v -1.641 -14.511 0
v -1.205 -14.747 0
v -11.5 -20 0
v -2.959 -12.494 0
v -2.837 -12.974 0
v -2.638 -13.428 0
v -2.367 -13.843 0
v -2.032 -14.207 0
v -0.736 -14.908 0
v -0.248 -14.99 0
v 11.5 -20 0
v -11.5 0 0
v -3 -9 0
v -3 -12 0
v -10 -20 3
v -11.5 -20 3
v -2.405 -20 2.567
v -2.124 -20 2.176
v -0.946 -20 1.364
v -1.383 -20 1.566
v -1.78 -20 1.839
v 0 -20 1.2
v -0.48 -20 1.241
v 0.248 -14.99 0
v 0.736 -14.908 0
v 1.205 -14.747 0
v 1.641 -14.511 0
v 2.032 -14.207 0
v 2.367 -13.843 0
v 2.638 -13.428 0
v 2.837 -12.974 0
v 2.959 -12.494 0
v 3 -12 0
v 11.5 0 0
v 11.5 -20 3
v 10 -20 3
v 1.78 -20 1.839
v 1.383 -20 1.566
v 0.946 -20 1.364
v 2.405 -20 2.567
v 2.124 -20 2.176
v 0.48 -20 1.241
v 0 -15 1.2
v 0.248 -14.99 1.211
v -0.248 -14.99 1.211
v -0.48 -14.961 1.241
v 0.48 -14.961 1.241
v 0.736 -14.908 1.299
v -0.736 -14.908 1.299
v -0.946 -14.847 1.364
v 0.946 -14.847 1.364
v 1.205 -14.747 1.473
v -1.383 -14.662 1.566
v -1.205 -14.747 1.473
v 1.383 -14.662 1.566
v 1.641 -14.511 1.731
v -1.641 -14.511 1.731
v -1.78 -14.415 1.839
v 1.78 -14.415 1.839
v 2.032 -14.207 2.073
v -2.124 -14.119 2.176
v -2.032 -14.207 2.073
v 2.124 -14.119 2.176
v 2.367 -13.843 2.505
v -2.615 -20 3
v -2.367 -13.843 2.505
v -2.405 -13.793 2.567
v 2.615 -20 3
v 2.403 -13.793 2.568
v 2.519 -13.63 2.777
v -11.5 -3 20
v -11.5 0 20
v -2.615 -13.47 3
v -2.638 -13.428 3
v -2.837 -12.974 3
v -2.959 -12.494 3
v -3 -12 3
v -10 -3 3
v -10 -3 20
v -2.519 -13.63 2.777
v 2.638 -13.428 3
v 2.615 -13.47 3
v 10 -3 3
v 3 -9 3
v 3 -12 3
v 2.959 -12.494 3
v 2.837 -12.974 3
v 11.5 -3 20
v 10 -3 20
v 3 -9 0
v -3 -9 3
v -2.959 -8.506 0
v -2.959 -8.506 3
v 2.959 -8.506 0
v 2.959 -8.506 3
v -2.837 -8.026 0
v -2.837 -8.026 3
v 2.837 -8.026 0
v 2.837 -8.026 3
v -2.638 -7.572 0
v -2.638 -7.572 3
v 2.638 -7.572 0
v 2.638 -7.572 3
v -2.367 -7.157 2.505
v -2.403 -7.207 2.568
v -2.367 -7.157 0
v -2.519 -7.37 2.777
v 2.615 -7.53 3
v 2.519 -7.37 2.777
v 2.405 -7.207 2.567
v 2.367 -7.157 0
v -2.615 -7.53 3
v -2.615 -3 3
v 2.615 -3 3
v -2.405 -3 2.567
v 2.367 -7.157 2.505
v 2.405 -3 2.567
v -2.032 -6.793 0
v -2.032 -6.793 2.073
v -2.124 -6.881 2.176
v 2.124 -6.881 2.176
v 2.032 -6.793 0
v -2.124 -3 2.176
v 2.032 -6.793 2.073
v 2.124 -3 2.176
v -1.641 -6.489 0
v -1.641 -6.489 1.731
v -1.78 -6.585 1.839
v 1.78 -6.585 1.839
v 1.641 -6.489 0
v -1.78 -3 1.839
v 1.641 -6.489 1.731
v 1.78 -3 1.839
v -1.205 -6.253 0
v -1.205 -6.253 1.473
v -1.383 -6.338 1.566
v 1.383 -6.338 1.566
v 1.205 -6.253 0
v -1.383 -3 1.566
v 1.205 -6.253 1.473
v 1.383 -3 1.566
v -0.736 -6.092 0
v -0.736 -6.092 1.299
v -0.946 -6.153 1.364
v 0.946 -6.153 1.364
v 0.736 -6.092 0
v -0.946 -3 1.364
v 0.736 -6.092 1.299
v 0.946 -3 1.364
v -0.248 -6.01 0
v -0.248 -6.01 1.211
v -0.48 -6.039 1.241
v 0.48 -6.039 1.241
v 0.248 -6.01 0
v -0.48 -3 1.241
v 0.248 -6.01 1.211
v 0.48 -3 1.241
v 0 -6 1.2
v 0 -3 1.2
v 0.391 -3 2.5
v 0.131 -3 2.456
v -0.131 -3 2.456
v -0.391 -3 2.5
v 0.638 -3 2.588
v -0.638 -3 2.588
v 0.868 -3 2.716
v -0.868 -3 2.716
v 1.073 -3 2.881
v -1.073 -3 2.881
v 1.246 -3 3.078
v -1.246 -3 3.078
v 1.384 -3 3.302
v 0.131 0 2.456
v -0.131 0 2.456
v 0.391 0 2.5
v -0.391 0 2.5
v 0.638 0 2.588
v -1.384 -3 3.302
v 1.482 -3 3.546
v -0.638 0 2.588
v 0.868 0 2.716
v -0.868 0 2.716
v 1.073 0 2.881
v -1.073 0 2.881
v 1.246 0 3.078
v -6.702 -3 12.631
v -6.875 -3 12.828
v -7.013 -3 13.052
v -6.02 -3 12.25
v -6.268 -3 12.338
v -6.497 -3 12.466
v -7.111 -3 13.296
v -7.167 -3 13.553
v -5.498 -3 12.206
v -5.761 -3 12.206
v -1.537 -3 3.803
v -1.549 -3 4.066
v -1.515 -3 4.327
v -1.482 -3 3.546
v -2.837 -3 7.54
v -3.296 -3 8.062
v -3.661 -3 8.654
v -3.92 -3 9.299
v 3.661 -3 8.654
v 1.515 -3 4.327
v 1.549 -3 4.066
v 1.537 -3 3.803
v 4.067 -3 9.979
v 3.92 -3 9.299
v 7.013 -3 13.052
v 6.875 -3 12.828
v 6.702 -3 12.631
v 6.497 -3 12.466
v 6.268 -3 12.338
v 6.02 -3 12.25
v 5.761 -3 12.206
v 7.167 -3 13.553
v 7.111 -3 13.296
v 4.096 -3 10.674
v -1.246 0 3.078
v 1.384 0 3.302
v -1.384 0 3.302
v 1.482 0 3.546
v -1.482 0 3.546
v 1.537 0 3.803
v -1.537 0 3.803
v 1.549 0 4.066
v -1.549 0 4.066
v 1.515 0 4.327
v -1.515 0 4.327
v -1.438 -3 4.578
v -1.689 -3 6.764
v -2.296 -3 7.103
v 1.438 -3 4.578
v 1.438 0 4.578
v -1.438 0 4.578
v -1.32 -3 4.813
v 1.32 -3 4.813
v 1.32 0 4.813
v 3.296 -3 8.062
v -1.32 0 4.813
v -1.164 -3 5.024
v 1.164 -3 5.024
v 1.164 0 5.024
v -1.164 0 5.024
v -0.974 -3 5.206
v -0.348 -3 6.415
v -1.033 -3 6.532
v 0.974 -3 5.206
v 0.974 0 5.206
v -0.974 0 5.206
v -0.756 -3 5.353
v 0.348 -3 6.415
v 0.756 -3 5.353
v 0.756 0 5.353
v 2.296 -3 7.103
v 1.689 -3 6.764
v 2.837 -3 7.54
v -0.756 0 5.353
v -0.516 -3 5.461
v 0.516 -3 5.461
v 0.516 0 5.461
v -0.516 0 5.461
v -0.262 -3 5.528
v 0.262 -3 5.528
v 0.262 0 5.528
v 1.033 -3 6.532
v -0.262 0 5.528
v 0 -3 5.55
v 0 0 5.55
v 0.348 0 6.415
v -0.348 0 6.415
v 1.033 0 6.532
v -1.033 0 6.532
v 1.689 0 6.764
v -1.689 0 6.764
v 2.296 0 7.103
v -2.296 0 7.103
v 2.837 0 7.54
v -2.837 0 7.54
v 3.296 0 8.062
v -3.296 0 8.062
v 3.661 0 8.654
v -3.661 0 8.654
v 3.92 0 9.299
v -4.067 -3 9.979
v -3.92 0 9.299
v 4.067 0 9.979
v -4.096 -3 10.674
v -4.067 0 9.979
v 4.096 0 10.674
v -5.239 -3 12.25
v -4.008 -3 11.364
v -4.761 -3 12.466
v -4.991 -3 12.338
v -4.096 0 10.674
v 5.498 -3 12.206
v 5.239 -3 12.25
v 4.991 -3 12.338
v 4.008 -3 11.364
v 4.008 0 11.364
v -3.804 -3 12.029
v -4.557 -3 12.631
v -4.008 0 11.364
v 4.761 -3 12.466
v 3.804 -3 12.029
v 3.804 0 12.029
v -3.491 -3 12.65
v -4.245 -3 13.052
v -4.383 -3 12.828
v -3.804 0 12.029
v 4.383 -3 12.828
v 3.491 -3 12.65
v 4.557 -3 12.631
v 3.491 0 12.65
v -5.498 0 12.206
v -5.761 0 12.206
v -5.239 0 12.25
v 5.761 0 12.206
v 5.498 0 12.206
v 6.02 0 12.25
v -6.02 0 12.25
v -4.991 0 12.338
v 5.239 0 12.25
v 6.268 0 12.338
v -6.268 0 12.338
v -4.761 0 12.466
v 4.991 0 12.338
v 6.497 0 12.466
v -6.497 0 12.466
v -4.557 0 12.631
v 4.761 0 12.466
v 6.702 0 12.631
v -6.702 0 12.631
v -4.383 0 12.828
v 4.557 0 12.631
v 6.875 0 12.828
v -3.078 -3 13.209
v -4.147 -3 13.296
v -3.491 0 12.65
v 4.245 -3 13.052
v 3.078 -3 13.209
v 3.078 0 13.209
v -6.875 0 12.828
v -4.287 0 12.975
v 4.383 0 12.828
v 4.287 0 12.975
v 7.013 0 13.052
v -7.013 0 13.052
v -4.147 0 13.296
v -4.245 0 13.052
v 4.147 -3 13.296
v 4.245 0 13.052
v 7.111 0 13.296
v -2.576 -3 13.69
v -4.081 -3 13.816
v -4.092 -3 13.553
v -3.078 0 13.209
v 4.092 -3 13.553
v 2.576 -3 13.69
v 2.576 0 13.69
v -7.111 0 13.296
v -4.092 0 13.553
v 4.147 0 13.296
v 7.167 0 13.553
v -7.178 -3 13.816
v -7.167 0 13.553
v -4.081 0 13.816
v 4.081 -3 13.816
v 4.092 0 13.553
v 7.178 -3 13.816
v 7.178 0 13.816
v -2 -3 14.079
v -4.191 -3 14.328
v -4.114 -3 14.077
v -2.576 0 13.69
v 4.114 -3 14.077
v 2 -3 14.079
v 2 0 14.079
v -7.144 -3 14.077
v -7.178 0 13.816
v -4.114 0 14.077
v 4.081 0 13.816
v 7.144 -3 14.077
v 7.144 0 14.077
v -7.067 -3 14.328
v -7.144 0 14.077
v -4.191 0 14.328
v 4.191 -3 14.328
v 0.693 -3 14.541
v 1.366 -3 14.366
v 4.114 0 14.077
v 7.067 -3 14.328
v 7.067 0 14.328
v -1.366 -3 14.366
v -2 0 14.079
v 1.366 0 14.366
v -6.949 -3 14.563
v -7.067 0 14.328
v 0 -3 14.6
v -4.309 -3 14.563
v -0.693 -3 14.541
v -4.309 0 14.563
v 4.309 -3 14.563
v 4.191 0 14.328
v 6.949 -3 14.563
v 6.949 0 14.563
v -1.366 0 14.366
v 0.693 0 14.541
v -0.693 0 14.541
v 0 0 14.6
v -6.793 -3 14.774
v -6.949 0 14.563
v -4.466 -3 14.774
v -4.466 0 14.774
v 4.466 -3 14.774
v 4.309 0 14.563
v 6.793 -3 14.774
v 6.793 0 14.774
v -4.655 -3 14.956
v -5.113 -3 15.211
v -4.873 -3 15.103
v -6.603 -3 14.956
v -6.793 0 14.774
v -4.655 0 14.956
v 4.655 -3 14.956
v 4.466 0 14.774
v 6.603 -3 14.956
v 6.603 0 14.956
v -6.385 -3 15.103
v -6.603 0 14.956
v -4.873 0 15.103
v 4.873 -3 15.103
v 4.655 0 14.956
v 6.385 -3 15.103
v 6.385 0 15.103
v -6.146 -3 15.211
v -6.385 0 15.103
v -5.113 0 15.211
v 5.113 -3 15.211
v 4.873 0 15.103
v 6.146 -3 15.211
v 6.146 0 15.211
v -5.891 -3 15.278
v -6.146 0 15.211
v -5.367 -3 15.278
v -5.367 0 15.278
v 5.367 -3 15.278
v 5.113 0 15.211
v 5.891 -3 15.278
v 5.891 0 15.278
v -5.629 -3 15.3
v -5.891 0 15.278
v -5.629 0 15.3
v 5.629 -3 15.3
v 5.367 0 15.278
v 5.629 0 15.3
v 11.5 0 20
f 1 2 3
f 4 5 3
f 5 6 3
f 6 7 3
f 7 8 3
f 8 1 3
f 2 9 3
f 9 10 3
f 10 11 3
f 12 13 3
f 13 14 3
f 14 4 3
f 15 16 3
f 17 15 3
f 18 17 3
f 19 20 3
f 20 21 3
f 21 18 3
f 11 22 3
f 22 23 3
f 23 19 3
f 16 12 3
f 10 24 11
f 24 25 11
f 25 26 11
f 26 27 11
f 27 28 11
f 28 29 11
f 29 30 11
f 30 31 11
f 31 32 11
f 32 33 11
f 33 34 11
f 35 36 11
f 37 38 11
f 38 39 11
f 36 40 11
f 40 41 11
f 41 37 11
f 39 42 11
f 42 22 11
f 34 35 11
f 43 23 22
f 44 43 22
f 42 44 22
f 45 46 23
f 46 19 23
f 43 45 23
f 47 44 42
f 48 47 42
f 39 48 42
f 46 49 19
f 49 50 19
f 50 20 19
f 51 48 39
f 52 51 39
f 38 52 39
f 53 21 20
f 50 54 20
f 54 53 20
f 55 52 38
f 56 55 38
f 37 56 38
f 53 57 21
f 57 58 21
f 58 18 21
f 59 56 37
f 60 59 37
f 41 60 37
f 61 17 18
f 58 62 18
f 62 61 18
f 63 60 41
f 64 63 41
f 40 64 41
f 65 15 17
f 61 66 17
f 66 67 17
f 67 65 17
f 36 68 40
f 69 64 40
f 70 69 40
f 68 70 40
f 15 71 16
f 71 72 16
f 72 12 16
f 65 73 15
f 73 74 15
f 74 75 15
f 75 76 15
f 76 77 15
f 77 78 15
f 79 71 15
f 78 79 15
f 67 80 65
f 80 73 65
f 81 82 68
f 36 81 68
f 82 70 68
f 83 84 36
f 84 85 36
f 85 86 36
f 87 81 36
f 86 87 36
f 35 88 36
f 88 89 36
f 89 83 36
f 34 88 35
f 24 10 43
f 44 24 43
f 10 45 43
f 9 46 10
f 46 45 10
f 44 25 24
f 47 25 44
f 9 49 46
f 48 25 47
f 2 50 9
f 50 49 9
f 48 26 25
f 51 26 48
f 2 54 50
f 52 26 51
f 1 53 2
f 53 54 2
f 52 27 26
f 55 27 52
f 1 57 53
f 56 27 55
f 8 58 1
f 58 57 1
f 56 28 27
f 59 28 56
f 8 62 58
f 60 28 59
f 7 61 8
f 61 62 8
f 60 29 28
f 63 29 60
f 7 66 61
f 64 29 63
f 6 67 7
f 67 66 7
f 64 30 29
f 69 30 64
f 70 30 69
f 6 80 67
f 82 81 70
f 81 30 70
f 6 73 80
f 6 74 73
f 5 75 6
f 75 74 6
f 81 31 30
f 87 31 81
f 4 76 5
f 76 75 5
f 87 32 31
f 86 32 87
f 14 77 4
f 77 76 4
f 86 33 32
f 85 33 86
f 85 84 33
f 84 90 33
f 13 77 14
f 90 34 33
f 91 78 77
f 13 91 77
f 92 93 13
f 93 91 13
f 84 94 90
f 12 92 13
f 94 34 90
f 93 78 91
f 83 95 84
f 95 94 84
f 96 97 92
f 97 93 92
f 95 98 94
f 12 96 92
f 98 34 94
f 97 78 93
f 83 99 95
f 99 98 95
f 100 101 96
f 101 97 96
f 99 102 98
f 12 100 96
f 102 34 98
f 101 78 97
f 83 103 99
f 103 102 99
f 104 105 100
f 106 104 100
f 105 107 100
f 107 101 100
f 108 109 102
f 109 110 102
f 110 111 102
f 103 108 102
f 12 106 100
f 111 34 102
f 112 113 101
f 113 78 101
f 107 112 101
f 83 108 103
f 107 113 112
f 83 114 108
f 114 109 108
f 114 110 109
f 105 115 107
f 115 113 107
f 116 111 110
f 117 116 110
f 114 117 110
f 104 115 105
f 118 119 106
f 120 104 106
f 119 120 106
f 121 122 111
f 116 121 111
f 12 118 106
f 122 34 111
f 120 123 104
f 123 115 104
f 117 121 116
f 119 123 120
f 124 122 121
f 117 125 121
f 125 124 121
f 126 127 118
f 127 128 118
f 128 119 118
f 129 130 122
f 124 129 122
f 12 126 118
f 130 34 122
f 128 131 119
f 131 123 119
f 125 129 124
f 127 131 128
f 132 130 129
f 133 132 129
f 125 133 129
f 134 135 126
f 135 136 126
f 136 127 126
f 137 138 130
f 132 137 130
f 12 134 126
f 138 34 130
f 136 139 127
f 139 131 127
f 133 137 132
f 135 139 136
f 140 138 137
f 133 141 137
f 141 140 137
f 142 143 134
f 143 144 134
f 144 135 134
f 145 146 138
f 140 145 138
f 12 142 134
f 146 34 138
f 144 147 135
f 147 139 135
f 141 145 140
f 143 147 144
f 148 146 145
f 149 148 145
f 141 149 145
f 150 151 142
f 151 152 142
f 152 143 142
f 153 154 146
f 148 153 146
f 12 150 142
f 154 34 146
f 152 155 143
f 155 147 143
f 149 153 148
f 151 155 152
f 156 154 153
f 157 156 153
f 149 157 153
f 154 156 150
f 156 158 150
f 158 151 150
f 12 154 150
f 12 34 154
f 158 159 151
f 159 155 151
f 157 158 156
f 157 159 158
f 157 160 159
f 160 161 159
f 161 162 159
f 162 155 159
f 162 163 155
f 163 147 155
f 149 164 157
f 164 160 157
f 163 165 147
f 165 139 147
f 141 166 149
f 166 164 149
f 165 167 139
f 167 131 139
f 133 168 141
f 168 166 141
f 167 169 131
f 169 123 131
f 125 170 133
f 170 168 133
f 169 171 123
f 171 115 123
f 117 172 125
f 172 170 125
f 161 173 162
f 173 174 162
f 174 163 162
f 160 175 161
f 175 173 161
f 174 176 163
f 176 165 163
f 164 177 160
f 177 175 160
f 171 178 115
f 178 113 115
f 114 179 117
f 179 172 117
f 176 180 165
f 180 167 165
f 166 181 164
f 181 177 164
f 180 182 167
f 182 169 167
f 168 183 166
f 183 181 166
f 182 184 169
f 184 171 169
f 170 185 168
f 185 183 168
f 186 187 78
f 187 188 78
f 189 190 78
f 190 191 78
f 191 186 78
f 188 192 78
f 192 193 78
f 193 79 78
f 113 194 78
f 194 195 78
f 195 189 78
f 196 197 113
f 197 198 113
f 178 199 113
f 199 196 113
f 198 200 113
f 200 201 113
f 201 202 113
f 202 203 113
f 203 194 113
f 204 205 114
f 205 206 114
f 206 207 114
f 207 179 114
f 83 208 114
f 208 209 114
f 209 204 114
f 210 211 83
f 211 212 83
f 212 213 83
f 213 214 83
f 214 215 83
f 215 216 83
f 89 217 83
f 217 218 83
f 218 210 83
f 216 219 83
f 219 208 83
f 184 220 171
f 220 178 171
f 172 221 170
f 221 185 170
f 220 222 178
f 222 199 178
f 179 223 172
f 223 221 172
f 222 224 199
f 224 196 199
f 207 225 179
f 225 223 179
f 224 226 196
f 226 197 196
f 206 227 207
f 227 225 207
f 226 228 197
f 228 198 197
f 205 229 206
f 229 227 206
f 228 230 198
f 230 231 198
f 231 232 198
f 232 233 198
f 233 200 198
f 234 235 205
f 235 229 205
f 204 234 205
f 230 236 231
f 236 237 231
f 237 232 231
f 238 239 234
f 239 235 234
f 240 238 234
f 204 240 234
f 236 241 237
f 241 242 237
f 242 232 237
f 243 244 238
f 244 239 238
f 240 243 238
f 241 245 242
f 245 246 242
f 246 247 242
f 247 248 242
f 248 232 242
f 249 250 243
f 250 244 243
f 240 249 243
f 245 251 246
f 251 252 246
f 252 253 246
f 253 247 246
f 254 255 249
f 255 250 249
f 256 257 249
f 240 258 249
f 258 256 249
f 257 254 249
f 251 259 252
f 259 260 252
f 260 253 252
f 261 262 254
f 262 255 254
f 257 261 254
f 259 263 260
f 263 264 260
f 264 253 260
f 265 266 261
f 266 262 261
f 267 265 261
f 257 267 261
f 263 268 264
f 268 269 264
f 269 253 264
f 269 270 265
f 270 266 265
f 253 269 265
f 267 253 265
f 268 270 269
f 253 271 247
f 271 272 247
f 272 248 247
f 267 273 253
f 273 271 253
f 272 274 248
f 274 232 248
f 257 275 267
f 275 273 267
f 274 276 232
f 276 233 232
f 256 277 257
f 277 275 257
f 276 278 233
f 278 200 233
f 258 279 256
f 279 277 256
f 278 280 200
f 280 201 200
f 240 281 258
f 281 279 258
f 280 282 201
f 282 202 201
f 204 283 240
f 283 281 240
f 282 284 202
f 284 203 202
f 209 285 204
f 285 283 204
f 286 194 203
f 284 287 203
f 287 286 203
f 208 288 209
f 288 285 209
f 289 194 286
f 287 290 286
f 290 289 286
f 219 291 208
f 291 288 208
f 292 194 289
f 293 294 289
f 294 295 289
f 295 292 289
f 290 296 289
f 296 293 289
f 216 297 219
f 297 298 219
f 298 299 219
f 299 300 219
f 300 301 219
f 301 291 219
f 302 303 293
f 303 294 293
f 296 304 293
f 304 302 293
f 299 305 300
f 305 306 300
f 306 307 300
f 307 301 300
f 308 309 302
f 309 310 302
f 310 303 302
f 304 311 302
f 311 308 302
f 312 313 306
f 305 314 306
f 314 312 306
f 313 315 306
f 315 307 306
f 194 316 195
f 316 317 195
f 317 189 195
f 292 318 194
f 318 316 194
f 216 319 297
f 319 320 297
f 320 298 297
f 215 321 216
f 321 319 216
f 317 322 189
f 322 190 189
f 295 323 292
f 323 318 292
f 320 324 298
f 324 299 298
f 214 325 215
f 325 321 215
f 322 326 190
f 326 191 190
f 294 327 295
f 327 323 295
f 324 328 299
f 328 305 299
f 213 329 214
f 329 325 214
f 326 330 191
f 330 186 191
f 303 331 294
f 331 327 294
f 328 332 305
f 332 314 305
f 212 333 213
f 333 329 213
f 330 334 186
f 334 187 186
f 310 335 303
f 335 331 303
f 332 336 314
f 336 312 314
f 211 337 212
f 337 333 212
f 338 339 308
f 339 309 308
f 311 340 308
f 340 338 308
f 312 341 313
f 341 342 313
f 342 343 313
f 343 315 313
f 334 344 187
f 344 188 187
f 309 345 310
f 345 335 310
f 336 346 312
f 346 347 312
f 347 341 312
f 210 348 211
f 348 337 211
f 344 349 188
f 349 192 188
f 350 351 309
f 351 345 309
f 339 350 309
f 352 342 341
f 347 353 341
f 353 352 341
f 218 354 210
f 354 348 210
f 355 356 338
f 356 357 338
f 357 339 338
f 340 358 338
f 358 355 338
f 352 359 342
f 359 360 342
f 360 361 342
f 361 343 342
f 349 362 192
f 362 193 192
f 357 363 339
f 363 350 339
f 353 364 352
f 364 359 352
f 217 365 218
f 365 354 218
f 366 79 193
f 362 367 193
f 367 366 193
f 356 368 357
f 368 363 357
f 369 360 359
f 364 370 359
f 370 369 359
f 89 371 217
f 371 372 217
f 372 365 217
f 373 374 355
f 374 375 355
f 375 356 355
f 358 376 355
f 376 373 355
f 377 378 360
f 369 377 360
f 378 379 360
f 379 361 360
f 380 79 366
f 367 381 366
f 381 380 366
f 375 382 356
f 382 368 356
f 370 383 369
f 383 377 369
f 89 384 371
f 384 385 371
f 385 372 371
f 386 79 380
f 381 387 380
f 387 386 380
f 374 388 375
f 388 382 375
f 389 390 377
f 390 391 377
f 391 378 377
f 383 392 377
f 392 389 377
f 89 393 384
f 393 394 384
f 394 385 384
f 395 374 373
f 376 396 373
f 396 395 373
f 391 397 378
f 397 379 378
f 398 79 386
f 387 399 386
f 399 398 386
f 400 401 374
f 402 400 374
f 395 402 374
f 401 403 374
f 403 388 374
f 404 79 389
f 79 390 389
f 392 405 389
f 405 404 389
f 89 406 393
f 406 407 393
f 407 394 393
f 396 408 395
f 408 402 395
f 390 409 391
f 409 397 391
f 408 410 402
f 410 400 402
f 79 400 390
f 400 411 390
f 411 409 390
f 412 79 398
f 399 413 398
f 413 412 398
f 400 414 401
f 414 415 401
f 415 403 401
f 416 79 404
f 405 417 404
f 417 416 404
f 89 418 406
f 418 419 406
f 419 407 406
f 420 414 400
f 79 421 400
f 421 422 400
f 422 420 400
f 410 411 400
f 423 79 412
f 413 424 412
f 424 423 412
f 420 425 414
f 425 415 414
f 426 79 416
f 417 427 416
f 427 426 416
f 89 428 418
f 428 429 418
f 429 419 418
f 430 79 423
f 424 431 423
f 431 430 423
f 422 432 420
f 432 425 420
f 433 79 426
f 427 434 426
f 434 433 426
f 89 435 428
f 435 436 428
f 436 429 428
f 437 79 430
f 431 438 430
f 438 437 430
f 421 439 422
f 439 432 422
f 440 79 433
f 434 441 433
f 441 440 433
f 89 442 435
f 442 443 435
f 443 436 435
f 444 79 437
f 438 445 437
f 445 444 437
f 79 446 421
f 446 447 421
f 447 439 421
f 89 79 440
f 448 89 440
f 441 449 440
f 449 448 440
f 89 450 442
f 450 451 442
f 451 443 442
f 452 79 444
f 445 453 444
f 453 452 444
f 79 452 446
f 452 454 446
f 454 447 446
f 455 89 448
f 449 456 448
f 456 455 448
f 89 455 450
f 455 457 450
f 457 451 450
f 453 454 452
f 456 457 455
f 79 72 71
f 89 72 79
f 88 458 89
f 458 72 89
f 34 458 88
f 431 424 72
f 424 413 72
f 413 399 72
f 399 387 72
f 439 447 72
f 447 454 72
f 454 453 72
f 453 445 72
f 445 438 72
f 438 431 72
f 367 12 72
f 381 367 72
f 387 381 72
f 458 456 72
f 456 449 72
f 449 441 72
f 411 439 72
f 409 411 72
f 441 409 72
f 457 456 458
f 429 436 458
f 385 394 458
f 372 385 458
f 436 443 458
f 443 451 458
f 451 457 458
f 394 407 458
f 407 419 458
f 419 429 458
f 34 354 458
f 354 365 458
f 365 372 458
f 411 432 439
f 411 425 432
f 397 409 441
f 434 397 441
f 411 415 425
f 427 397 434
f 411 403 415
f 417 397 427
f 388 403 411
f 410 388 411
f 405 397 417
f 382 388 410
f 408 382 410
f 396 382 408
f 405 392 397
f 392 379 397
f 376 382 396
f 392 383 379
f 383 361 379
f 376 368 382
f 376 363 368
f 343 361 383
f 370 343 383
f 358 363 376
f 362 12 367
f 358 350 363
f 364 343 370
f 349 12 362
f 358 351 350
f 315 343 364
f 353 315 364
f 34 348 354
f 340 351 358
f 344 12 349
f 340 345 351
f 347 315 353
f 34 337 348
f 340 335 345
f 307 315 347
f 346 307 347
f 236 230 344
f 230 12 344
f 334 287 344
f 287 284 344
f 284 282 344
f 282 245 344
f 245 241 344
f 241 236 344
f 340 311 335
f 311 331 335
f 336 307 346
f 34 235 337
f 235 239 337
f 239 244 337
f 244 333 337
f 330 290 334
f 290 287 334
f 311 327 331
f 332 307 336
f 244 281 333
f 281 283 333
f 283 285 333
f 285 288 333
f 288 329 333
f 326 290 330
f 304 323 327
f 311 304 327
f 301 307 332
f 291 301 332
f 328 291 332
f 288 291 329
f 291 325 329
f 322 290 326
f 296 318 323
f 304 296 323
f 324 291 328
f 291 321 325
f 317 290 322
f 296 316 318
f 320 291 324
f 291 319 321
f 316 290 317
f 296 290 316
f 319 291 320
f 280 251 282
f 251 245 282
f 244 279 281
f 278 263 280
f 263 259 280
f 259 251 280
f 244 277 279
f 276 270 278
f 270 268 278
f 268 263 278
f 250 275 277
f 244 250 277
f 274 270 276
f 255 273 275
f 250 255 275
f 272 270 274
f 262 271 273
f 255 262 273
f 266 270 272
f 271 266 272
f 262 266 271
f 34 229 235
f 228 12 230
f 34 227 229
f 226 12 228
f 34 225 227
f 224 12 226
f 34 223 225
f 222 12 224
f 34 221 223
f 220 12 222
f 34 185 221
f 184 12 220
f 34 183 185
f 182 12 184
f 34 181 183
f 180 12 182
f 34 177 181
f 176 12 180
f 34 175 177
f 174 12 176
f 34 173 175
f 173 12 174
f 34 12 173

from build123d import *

# Parameters (mm, degrees)
BOSS_EXTRUDE1_DEPTH   = 11.5
SKETCH2_W             = 17
SKETCH2_H             = 17
CUT_EXTRUDE1_DEPTH    = 10
CUT_EXTRUDE2_REACH    = 5
CORTE_EXTRUS_O1_REACH = 22
ESBO_O1_R             = 4.1
ESBO_O6_R             = 1.55
CORTE_EXTRUS_O5_DEPTH = 21
PADR_OCIRCULAR2_COUNT = 3
ESBO_O11_R            = 2.8
CORTE_EXTRUS_O8_DEPTH = 18.0000001


with BuildPart() as part:
    # Sketch1 → Boss-Extrude1 (new body, symmetric)
    with BuildSketch(Plane(origin=(0, 0, 0), x_dir=(0, 0, -1), z_dir=(1, 0, 0))):
        Polygon((0, 0), (-20, 0), (-20, -3), (-11.5, -11.5), (-3, -20), (0, -20), align=None)
    extrude(amount=BOSS_EXTRUDE1_DEPTH, both=True)

    # Sketch2 → Cut-Extrude1 (cut, symmetric)
    with BuildSketch(Plane(origin=(0, 0, 0), x_dir=(0, 0, -1), z_dir=(1, 0, 0))):
        with Locations((-11.5, -11.5)):
            Rectangle(SKETCH2_W, SKETCH2_H)
    extrude(amount=CUT_EXTRUDE1_DEPTH, both=True, mode=Mode.SUBTRACT)

    # Sketch3 → Cut-Extrude2 (cut, up to next)
    with BuildSketch(Plane.XY.offset(3), mode=Mode.PRIVATE) as cut_extrude2_sk1:
        with BuildLine():
            Line((-3, -9), (-3, -12))
            ThreePointArc((-3, -12), (0, -15), (3, -12))
            Line((3, -12), (3, -9))
            ThreePointArc((3, -9), (0, -6), (-3, -9))
        make_face()
    cut_extrude2_tool1 = extrude(cut_extrude2_sk1.sketch, amount=-CUT_EXTRUDE2_REACH, mode=Mode.PRIVATE) & part.part
    add(cut_extrude2_tool1.solids().sort_by_distance((0, -10.5, 3))[0], mode=Mode.SUBTRACT)

    # Esboço1 → Corte-extrusão1 (cut, up to next)
    with BuildSketch(Plane(origin=(0, 0, 0), x_dir=(1, 0, 0), z_dir=(0, 1, 0)), mode=Mode.PRIVATE) as corte_extrus_o1_sk1:
        with Locations((0, -10.5)):
            Circle(ESBO_O1_R)
    corte_extrus_o1_tool1 = extrude(corte_extrus_o1_sk1.sketch, amount=-CORTE_EXTRUS_O1_REACH, mode=Mode.PRIVATE) & part.part
    add(corte_extrus_o1_tool1.solids().sort_by_distance((0, 0, 10.5))[0], mode=Mode.SUBTRACT)

    # Esboço6 → Corte-extrusão5 (cut, through all)
    with BuildSketch(Plane(origin=(0, 0, 0), x_dir=(1, 0, 0), z_dir=(0, 1, 0))):
        with Locations((0, -4)):
            Circle(ESBO_O6_R)
    corte_extrus_o5 = extrude(amount=-CORTE_EXTRUS_O5_DEPTH, mode=Mode.SUBTRACT)

    # PadrãoCircular2: Corte-extrusão5 ×3 about axis
    padr_ocircular2_axis = Axis((0, 0, 10.5), (0, 1, 0))
    for i in range(1, PADR_OCIRCULAR2_COUNT):
        add(corte_extrus_o5.rotate(padr_ocircular2_axis, i * 360 / PADR_OCIRCULAR2_COUNT), mode=Mode.SUBTRACT)

    # Esboço11 → Corte-extrusão8 (cut, through all)
    with BuildSketch(Plane.XZ.offset(3)):
        with Locations((0, 4)):
            Circle(ESBO_O11_R)
    extrude(amount=CORTE_EXTRUS_O8_DEPTH, mode=Mode.SUBTRACT)


solid = part.part
